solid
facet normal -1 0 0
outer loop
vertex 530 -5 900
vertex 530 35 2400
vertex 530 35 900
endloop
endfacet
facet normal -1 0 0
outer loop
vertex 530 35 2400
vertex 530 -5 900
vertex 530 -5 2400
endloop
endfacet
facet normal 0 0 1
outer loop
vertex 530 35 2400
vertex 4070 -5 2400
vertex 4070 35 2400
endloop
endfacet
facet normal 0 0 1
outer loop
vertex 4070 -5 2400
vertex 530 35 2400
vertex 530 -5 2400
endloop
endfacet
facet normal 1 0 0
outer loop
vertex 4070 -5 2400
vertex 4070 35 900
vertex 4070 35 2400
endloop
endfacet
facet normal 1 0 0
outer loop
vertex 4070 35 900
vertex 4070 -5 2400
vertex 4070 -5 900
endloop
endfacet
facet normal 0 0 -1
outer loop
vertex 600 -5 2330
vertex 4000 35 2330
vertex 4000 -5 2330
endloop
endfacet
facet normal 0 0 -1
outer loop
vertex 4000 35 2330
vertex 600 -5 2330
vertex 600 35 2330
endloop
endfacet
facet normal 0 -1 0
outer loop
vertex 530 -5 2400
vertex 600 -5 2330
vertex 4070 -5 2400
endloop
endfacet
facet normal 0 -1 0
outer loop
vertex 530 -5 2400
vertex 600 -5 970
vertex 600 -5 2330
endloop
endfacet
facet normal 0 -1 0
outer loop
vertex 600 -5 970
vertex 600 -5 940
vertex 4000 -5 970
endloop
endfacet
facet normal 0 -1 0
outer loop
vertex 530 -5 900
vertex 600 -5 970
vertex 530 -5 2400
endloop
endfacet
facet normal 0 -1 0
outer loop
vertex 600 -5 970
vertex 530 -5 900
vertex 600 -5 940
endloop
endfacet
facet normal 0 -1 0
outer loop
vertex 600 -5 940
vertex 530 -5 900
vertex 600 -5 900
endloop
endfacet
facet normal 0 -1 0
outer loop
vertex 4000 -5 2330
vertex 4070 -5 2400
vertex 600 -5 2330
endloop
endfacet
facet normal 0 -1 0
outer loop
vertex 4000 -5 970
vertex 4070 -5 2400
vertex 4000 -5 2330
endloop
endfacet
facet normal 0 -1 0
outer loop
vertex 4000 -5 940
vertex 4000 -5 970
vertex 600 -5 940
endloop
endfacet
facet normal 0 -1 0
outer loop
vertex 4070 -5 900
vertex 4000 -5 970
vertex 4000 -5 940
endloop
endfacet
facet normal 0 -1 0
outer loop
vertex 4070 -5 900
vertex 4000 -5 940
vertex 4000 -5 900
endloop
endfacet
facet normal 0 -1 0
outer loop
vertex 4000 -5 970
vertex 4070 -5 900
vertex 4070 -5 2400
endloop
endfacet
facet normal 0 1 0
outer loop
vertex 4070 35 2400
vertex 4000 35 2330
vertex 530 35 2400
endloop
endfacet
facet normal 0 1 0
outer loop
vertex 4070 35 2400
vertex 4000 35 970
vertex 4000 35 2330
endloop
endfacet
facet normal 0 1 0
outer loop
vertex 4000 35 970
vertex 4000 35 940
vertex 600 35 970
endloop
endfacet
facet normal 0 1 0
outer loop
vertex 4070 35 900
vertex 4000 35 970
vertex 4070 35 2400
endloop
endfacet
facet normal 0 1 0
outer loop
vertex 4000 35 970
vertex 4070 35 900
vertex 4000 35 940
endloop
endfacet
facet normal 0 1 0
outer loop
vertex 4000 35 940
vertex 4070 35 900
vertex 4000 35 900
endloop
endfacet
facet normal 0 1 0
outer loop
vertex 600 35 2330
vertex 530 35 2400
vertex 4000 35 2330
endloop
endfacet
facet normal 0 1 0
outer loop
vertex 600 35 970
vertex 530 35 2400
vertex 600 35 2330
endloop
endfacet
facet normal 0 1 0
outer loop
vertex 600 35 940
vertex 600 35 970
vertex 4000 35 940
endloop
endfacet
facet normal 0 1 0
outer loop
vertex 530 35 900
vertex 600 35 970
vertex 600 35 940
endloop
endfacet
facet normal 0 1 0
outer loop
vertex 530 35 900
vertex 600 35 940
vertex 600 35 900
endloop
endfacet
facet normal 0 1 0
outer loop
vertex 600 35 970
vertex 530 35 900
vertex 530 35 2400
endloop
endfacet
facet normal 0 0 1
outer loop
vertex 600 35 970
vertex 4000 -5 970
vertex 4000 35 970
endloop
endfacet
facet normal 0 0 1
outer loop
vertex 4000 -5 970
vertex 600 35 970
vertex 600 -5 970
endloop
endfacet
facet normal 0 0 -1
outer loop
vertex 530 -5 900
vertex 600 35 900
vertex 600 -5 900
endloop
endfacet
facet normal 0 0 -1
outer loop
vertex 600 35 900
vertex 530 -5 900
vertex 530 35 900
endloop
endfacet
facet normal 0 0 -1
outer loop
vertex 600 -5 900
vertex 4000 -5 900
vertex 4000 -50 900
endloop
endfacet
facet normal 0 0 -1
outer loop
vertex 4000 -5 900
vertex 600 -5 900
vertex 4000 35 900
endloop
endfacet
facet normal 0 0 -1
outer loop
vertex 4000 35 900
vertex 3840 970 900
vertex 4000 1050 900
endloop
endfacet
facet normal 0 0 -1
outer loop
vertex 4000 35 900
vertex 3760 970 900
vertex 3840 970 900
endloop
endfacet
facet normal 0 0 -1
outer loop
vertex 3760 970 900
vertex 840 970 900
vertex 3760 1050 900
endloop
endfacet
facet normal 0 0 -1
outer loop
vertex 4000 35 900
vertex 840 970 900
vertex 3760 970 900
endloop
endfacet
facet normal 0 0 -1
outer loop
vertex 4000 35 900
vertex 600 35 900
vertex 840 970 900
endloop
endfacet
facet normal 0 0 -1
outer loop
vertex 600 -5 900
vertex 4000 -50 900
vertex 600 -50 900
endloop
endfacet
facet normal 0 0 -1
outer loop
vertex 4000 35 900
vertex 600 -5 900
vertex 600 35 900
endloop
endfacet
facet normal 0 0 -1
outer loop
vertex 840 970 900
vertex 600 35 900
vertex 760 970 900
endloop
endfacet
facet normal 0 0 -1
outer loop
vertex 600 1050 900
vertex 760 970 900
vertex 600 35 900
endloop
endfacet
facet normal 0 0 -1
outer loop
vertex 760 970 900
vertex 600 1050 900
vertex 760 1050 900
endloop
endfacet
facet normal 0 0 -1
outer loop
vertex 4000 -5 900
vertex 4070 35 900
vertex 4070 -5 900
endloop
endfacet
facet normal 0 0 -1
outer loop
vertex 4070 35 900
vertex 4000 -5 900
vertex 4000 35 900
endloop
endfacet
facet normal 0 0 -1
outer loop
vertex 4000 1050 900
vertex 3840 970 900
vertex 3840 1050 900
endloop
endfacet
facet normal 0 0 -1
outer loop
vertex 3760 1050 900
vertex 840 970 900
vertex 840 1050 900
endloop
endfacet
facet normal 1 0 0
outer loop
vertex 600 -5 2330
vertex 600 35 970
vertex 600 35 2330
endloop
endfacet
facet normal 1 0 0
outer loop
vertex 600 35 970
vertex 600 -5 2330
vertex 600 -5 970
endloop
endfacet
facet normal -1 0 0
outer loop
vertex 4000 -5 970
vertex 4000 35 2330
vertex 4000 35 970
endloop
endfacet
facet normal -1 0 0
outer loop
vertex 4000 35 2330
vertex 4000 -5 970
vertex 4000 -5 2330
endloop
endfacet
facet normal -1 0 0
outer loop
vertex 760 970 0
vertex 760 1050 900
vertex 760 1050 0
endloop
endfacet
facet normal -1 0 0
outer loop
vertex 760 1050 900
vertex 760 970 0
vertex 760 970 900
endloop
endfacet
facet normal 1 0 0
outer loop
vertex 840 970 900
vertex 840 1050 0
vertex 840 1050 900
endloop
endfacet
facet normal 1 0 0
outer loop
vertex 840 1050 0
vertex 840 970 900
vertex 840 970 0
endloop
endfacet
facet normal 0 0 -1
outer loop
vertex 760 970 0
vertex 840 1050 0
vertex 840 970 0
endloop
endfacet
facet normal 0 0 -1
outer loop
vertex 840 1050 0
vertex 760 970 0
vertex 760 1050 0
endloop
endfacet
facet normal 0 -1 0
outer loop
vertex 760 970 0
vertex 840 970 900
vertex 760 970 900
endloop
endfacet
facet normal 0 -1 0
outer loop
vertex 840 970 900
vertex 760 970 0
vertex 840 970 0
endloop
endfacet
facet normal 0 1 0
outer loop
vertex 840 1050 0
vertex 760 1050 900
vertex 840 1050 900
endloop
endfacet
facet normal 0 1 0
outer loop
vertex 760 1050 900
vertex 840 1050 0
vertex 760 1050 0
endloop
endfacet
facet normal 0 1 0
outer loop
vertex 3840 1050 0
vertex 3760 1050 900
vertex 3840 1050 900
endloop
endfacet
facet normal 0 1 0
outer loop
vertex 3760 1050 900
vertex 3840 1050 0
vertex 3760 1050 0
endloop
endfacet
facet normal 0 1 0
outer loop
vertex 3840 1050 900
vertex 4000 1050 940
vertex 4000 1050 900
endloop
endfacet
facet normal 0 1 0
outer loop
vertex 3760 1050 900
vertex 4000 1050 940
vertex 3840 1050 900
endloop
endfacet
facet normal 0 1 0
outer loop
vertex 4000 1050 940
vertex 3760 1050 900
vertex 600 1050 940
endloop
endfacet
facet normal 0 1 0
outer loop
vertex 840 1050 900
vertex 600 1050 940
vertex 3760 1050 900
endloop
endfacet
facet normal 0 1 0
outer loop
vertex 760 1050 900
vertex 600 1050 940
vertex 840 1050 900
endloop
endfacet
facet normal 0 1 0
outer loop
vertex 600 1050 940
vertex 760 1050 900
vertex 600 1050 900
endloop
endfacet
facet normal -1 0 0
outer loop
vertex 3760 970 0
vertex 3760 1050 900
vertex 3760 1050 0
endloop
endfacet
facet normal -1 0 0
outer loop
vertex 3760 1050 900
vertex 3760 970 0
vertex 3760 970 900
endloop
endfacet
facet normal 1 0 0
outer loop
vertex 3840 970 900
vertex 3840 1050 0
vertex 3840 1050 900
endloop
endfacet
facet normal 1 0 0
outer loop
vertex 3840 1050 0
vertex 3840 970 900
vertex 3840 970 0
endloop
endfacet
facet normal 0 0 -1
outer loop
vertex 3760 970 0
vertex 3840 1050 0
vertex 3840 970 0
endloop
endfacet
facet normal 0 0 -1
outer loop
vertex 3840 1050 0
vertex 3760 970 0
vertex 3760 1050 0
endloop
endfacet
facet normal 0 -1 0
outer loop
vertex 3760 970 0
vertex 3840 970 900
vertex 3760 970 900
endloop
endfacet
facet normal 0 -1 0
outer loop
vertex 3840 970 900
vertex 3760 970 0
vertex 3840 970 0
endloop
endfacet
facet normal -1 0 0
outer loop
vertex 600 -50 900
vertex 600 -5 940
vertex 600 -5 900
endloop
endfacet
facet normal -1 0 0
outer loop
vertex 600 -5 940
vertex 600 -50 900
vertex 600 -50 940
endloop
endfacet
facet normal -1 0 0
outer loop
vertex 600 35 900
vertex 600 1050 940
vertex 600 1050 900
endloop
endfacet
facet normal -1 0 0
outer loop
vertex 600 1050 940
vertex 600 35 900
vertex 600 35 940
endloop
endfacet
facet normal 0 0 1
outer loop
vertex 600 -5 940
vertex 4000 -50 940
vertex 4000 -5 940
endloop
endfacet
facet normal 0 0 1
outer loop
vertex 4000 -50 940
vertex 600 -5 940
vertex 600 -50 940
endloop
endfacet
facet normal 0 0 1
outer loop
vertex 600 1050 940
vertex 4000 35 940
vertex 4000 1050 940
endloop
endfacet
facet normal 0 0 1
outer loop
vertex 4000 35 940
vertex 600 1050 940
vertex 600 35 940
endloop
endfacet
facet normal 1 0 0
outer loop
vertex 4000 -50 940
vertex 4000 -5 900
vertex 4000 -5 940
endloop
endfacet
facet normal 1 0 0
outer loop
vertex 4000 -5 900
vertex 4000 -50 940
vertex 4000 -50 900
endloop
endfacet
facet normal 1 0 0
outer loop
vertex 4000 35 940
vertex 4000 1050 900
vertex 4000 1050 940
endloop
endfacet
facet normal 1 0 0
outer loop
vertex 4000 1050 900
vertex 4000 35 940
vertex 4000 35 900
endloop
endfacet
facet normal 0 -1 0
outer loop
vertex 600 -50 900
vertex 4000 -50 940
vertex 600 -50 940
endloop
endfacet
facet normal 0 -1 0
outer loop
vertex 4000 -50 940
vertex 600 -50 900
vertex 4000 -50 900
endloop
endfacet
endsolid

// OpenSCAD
// part_window_jamb_right.scad — Export the right vertical frame bar as standalone OBJ.
// Press F6 (render), then File -> Export as OBJ.
include <tea_shop_counter_modules.scad>;
window_jamb_right();
